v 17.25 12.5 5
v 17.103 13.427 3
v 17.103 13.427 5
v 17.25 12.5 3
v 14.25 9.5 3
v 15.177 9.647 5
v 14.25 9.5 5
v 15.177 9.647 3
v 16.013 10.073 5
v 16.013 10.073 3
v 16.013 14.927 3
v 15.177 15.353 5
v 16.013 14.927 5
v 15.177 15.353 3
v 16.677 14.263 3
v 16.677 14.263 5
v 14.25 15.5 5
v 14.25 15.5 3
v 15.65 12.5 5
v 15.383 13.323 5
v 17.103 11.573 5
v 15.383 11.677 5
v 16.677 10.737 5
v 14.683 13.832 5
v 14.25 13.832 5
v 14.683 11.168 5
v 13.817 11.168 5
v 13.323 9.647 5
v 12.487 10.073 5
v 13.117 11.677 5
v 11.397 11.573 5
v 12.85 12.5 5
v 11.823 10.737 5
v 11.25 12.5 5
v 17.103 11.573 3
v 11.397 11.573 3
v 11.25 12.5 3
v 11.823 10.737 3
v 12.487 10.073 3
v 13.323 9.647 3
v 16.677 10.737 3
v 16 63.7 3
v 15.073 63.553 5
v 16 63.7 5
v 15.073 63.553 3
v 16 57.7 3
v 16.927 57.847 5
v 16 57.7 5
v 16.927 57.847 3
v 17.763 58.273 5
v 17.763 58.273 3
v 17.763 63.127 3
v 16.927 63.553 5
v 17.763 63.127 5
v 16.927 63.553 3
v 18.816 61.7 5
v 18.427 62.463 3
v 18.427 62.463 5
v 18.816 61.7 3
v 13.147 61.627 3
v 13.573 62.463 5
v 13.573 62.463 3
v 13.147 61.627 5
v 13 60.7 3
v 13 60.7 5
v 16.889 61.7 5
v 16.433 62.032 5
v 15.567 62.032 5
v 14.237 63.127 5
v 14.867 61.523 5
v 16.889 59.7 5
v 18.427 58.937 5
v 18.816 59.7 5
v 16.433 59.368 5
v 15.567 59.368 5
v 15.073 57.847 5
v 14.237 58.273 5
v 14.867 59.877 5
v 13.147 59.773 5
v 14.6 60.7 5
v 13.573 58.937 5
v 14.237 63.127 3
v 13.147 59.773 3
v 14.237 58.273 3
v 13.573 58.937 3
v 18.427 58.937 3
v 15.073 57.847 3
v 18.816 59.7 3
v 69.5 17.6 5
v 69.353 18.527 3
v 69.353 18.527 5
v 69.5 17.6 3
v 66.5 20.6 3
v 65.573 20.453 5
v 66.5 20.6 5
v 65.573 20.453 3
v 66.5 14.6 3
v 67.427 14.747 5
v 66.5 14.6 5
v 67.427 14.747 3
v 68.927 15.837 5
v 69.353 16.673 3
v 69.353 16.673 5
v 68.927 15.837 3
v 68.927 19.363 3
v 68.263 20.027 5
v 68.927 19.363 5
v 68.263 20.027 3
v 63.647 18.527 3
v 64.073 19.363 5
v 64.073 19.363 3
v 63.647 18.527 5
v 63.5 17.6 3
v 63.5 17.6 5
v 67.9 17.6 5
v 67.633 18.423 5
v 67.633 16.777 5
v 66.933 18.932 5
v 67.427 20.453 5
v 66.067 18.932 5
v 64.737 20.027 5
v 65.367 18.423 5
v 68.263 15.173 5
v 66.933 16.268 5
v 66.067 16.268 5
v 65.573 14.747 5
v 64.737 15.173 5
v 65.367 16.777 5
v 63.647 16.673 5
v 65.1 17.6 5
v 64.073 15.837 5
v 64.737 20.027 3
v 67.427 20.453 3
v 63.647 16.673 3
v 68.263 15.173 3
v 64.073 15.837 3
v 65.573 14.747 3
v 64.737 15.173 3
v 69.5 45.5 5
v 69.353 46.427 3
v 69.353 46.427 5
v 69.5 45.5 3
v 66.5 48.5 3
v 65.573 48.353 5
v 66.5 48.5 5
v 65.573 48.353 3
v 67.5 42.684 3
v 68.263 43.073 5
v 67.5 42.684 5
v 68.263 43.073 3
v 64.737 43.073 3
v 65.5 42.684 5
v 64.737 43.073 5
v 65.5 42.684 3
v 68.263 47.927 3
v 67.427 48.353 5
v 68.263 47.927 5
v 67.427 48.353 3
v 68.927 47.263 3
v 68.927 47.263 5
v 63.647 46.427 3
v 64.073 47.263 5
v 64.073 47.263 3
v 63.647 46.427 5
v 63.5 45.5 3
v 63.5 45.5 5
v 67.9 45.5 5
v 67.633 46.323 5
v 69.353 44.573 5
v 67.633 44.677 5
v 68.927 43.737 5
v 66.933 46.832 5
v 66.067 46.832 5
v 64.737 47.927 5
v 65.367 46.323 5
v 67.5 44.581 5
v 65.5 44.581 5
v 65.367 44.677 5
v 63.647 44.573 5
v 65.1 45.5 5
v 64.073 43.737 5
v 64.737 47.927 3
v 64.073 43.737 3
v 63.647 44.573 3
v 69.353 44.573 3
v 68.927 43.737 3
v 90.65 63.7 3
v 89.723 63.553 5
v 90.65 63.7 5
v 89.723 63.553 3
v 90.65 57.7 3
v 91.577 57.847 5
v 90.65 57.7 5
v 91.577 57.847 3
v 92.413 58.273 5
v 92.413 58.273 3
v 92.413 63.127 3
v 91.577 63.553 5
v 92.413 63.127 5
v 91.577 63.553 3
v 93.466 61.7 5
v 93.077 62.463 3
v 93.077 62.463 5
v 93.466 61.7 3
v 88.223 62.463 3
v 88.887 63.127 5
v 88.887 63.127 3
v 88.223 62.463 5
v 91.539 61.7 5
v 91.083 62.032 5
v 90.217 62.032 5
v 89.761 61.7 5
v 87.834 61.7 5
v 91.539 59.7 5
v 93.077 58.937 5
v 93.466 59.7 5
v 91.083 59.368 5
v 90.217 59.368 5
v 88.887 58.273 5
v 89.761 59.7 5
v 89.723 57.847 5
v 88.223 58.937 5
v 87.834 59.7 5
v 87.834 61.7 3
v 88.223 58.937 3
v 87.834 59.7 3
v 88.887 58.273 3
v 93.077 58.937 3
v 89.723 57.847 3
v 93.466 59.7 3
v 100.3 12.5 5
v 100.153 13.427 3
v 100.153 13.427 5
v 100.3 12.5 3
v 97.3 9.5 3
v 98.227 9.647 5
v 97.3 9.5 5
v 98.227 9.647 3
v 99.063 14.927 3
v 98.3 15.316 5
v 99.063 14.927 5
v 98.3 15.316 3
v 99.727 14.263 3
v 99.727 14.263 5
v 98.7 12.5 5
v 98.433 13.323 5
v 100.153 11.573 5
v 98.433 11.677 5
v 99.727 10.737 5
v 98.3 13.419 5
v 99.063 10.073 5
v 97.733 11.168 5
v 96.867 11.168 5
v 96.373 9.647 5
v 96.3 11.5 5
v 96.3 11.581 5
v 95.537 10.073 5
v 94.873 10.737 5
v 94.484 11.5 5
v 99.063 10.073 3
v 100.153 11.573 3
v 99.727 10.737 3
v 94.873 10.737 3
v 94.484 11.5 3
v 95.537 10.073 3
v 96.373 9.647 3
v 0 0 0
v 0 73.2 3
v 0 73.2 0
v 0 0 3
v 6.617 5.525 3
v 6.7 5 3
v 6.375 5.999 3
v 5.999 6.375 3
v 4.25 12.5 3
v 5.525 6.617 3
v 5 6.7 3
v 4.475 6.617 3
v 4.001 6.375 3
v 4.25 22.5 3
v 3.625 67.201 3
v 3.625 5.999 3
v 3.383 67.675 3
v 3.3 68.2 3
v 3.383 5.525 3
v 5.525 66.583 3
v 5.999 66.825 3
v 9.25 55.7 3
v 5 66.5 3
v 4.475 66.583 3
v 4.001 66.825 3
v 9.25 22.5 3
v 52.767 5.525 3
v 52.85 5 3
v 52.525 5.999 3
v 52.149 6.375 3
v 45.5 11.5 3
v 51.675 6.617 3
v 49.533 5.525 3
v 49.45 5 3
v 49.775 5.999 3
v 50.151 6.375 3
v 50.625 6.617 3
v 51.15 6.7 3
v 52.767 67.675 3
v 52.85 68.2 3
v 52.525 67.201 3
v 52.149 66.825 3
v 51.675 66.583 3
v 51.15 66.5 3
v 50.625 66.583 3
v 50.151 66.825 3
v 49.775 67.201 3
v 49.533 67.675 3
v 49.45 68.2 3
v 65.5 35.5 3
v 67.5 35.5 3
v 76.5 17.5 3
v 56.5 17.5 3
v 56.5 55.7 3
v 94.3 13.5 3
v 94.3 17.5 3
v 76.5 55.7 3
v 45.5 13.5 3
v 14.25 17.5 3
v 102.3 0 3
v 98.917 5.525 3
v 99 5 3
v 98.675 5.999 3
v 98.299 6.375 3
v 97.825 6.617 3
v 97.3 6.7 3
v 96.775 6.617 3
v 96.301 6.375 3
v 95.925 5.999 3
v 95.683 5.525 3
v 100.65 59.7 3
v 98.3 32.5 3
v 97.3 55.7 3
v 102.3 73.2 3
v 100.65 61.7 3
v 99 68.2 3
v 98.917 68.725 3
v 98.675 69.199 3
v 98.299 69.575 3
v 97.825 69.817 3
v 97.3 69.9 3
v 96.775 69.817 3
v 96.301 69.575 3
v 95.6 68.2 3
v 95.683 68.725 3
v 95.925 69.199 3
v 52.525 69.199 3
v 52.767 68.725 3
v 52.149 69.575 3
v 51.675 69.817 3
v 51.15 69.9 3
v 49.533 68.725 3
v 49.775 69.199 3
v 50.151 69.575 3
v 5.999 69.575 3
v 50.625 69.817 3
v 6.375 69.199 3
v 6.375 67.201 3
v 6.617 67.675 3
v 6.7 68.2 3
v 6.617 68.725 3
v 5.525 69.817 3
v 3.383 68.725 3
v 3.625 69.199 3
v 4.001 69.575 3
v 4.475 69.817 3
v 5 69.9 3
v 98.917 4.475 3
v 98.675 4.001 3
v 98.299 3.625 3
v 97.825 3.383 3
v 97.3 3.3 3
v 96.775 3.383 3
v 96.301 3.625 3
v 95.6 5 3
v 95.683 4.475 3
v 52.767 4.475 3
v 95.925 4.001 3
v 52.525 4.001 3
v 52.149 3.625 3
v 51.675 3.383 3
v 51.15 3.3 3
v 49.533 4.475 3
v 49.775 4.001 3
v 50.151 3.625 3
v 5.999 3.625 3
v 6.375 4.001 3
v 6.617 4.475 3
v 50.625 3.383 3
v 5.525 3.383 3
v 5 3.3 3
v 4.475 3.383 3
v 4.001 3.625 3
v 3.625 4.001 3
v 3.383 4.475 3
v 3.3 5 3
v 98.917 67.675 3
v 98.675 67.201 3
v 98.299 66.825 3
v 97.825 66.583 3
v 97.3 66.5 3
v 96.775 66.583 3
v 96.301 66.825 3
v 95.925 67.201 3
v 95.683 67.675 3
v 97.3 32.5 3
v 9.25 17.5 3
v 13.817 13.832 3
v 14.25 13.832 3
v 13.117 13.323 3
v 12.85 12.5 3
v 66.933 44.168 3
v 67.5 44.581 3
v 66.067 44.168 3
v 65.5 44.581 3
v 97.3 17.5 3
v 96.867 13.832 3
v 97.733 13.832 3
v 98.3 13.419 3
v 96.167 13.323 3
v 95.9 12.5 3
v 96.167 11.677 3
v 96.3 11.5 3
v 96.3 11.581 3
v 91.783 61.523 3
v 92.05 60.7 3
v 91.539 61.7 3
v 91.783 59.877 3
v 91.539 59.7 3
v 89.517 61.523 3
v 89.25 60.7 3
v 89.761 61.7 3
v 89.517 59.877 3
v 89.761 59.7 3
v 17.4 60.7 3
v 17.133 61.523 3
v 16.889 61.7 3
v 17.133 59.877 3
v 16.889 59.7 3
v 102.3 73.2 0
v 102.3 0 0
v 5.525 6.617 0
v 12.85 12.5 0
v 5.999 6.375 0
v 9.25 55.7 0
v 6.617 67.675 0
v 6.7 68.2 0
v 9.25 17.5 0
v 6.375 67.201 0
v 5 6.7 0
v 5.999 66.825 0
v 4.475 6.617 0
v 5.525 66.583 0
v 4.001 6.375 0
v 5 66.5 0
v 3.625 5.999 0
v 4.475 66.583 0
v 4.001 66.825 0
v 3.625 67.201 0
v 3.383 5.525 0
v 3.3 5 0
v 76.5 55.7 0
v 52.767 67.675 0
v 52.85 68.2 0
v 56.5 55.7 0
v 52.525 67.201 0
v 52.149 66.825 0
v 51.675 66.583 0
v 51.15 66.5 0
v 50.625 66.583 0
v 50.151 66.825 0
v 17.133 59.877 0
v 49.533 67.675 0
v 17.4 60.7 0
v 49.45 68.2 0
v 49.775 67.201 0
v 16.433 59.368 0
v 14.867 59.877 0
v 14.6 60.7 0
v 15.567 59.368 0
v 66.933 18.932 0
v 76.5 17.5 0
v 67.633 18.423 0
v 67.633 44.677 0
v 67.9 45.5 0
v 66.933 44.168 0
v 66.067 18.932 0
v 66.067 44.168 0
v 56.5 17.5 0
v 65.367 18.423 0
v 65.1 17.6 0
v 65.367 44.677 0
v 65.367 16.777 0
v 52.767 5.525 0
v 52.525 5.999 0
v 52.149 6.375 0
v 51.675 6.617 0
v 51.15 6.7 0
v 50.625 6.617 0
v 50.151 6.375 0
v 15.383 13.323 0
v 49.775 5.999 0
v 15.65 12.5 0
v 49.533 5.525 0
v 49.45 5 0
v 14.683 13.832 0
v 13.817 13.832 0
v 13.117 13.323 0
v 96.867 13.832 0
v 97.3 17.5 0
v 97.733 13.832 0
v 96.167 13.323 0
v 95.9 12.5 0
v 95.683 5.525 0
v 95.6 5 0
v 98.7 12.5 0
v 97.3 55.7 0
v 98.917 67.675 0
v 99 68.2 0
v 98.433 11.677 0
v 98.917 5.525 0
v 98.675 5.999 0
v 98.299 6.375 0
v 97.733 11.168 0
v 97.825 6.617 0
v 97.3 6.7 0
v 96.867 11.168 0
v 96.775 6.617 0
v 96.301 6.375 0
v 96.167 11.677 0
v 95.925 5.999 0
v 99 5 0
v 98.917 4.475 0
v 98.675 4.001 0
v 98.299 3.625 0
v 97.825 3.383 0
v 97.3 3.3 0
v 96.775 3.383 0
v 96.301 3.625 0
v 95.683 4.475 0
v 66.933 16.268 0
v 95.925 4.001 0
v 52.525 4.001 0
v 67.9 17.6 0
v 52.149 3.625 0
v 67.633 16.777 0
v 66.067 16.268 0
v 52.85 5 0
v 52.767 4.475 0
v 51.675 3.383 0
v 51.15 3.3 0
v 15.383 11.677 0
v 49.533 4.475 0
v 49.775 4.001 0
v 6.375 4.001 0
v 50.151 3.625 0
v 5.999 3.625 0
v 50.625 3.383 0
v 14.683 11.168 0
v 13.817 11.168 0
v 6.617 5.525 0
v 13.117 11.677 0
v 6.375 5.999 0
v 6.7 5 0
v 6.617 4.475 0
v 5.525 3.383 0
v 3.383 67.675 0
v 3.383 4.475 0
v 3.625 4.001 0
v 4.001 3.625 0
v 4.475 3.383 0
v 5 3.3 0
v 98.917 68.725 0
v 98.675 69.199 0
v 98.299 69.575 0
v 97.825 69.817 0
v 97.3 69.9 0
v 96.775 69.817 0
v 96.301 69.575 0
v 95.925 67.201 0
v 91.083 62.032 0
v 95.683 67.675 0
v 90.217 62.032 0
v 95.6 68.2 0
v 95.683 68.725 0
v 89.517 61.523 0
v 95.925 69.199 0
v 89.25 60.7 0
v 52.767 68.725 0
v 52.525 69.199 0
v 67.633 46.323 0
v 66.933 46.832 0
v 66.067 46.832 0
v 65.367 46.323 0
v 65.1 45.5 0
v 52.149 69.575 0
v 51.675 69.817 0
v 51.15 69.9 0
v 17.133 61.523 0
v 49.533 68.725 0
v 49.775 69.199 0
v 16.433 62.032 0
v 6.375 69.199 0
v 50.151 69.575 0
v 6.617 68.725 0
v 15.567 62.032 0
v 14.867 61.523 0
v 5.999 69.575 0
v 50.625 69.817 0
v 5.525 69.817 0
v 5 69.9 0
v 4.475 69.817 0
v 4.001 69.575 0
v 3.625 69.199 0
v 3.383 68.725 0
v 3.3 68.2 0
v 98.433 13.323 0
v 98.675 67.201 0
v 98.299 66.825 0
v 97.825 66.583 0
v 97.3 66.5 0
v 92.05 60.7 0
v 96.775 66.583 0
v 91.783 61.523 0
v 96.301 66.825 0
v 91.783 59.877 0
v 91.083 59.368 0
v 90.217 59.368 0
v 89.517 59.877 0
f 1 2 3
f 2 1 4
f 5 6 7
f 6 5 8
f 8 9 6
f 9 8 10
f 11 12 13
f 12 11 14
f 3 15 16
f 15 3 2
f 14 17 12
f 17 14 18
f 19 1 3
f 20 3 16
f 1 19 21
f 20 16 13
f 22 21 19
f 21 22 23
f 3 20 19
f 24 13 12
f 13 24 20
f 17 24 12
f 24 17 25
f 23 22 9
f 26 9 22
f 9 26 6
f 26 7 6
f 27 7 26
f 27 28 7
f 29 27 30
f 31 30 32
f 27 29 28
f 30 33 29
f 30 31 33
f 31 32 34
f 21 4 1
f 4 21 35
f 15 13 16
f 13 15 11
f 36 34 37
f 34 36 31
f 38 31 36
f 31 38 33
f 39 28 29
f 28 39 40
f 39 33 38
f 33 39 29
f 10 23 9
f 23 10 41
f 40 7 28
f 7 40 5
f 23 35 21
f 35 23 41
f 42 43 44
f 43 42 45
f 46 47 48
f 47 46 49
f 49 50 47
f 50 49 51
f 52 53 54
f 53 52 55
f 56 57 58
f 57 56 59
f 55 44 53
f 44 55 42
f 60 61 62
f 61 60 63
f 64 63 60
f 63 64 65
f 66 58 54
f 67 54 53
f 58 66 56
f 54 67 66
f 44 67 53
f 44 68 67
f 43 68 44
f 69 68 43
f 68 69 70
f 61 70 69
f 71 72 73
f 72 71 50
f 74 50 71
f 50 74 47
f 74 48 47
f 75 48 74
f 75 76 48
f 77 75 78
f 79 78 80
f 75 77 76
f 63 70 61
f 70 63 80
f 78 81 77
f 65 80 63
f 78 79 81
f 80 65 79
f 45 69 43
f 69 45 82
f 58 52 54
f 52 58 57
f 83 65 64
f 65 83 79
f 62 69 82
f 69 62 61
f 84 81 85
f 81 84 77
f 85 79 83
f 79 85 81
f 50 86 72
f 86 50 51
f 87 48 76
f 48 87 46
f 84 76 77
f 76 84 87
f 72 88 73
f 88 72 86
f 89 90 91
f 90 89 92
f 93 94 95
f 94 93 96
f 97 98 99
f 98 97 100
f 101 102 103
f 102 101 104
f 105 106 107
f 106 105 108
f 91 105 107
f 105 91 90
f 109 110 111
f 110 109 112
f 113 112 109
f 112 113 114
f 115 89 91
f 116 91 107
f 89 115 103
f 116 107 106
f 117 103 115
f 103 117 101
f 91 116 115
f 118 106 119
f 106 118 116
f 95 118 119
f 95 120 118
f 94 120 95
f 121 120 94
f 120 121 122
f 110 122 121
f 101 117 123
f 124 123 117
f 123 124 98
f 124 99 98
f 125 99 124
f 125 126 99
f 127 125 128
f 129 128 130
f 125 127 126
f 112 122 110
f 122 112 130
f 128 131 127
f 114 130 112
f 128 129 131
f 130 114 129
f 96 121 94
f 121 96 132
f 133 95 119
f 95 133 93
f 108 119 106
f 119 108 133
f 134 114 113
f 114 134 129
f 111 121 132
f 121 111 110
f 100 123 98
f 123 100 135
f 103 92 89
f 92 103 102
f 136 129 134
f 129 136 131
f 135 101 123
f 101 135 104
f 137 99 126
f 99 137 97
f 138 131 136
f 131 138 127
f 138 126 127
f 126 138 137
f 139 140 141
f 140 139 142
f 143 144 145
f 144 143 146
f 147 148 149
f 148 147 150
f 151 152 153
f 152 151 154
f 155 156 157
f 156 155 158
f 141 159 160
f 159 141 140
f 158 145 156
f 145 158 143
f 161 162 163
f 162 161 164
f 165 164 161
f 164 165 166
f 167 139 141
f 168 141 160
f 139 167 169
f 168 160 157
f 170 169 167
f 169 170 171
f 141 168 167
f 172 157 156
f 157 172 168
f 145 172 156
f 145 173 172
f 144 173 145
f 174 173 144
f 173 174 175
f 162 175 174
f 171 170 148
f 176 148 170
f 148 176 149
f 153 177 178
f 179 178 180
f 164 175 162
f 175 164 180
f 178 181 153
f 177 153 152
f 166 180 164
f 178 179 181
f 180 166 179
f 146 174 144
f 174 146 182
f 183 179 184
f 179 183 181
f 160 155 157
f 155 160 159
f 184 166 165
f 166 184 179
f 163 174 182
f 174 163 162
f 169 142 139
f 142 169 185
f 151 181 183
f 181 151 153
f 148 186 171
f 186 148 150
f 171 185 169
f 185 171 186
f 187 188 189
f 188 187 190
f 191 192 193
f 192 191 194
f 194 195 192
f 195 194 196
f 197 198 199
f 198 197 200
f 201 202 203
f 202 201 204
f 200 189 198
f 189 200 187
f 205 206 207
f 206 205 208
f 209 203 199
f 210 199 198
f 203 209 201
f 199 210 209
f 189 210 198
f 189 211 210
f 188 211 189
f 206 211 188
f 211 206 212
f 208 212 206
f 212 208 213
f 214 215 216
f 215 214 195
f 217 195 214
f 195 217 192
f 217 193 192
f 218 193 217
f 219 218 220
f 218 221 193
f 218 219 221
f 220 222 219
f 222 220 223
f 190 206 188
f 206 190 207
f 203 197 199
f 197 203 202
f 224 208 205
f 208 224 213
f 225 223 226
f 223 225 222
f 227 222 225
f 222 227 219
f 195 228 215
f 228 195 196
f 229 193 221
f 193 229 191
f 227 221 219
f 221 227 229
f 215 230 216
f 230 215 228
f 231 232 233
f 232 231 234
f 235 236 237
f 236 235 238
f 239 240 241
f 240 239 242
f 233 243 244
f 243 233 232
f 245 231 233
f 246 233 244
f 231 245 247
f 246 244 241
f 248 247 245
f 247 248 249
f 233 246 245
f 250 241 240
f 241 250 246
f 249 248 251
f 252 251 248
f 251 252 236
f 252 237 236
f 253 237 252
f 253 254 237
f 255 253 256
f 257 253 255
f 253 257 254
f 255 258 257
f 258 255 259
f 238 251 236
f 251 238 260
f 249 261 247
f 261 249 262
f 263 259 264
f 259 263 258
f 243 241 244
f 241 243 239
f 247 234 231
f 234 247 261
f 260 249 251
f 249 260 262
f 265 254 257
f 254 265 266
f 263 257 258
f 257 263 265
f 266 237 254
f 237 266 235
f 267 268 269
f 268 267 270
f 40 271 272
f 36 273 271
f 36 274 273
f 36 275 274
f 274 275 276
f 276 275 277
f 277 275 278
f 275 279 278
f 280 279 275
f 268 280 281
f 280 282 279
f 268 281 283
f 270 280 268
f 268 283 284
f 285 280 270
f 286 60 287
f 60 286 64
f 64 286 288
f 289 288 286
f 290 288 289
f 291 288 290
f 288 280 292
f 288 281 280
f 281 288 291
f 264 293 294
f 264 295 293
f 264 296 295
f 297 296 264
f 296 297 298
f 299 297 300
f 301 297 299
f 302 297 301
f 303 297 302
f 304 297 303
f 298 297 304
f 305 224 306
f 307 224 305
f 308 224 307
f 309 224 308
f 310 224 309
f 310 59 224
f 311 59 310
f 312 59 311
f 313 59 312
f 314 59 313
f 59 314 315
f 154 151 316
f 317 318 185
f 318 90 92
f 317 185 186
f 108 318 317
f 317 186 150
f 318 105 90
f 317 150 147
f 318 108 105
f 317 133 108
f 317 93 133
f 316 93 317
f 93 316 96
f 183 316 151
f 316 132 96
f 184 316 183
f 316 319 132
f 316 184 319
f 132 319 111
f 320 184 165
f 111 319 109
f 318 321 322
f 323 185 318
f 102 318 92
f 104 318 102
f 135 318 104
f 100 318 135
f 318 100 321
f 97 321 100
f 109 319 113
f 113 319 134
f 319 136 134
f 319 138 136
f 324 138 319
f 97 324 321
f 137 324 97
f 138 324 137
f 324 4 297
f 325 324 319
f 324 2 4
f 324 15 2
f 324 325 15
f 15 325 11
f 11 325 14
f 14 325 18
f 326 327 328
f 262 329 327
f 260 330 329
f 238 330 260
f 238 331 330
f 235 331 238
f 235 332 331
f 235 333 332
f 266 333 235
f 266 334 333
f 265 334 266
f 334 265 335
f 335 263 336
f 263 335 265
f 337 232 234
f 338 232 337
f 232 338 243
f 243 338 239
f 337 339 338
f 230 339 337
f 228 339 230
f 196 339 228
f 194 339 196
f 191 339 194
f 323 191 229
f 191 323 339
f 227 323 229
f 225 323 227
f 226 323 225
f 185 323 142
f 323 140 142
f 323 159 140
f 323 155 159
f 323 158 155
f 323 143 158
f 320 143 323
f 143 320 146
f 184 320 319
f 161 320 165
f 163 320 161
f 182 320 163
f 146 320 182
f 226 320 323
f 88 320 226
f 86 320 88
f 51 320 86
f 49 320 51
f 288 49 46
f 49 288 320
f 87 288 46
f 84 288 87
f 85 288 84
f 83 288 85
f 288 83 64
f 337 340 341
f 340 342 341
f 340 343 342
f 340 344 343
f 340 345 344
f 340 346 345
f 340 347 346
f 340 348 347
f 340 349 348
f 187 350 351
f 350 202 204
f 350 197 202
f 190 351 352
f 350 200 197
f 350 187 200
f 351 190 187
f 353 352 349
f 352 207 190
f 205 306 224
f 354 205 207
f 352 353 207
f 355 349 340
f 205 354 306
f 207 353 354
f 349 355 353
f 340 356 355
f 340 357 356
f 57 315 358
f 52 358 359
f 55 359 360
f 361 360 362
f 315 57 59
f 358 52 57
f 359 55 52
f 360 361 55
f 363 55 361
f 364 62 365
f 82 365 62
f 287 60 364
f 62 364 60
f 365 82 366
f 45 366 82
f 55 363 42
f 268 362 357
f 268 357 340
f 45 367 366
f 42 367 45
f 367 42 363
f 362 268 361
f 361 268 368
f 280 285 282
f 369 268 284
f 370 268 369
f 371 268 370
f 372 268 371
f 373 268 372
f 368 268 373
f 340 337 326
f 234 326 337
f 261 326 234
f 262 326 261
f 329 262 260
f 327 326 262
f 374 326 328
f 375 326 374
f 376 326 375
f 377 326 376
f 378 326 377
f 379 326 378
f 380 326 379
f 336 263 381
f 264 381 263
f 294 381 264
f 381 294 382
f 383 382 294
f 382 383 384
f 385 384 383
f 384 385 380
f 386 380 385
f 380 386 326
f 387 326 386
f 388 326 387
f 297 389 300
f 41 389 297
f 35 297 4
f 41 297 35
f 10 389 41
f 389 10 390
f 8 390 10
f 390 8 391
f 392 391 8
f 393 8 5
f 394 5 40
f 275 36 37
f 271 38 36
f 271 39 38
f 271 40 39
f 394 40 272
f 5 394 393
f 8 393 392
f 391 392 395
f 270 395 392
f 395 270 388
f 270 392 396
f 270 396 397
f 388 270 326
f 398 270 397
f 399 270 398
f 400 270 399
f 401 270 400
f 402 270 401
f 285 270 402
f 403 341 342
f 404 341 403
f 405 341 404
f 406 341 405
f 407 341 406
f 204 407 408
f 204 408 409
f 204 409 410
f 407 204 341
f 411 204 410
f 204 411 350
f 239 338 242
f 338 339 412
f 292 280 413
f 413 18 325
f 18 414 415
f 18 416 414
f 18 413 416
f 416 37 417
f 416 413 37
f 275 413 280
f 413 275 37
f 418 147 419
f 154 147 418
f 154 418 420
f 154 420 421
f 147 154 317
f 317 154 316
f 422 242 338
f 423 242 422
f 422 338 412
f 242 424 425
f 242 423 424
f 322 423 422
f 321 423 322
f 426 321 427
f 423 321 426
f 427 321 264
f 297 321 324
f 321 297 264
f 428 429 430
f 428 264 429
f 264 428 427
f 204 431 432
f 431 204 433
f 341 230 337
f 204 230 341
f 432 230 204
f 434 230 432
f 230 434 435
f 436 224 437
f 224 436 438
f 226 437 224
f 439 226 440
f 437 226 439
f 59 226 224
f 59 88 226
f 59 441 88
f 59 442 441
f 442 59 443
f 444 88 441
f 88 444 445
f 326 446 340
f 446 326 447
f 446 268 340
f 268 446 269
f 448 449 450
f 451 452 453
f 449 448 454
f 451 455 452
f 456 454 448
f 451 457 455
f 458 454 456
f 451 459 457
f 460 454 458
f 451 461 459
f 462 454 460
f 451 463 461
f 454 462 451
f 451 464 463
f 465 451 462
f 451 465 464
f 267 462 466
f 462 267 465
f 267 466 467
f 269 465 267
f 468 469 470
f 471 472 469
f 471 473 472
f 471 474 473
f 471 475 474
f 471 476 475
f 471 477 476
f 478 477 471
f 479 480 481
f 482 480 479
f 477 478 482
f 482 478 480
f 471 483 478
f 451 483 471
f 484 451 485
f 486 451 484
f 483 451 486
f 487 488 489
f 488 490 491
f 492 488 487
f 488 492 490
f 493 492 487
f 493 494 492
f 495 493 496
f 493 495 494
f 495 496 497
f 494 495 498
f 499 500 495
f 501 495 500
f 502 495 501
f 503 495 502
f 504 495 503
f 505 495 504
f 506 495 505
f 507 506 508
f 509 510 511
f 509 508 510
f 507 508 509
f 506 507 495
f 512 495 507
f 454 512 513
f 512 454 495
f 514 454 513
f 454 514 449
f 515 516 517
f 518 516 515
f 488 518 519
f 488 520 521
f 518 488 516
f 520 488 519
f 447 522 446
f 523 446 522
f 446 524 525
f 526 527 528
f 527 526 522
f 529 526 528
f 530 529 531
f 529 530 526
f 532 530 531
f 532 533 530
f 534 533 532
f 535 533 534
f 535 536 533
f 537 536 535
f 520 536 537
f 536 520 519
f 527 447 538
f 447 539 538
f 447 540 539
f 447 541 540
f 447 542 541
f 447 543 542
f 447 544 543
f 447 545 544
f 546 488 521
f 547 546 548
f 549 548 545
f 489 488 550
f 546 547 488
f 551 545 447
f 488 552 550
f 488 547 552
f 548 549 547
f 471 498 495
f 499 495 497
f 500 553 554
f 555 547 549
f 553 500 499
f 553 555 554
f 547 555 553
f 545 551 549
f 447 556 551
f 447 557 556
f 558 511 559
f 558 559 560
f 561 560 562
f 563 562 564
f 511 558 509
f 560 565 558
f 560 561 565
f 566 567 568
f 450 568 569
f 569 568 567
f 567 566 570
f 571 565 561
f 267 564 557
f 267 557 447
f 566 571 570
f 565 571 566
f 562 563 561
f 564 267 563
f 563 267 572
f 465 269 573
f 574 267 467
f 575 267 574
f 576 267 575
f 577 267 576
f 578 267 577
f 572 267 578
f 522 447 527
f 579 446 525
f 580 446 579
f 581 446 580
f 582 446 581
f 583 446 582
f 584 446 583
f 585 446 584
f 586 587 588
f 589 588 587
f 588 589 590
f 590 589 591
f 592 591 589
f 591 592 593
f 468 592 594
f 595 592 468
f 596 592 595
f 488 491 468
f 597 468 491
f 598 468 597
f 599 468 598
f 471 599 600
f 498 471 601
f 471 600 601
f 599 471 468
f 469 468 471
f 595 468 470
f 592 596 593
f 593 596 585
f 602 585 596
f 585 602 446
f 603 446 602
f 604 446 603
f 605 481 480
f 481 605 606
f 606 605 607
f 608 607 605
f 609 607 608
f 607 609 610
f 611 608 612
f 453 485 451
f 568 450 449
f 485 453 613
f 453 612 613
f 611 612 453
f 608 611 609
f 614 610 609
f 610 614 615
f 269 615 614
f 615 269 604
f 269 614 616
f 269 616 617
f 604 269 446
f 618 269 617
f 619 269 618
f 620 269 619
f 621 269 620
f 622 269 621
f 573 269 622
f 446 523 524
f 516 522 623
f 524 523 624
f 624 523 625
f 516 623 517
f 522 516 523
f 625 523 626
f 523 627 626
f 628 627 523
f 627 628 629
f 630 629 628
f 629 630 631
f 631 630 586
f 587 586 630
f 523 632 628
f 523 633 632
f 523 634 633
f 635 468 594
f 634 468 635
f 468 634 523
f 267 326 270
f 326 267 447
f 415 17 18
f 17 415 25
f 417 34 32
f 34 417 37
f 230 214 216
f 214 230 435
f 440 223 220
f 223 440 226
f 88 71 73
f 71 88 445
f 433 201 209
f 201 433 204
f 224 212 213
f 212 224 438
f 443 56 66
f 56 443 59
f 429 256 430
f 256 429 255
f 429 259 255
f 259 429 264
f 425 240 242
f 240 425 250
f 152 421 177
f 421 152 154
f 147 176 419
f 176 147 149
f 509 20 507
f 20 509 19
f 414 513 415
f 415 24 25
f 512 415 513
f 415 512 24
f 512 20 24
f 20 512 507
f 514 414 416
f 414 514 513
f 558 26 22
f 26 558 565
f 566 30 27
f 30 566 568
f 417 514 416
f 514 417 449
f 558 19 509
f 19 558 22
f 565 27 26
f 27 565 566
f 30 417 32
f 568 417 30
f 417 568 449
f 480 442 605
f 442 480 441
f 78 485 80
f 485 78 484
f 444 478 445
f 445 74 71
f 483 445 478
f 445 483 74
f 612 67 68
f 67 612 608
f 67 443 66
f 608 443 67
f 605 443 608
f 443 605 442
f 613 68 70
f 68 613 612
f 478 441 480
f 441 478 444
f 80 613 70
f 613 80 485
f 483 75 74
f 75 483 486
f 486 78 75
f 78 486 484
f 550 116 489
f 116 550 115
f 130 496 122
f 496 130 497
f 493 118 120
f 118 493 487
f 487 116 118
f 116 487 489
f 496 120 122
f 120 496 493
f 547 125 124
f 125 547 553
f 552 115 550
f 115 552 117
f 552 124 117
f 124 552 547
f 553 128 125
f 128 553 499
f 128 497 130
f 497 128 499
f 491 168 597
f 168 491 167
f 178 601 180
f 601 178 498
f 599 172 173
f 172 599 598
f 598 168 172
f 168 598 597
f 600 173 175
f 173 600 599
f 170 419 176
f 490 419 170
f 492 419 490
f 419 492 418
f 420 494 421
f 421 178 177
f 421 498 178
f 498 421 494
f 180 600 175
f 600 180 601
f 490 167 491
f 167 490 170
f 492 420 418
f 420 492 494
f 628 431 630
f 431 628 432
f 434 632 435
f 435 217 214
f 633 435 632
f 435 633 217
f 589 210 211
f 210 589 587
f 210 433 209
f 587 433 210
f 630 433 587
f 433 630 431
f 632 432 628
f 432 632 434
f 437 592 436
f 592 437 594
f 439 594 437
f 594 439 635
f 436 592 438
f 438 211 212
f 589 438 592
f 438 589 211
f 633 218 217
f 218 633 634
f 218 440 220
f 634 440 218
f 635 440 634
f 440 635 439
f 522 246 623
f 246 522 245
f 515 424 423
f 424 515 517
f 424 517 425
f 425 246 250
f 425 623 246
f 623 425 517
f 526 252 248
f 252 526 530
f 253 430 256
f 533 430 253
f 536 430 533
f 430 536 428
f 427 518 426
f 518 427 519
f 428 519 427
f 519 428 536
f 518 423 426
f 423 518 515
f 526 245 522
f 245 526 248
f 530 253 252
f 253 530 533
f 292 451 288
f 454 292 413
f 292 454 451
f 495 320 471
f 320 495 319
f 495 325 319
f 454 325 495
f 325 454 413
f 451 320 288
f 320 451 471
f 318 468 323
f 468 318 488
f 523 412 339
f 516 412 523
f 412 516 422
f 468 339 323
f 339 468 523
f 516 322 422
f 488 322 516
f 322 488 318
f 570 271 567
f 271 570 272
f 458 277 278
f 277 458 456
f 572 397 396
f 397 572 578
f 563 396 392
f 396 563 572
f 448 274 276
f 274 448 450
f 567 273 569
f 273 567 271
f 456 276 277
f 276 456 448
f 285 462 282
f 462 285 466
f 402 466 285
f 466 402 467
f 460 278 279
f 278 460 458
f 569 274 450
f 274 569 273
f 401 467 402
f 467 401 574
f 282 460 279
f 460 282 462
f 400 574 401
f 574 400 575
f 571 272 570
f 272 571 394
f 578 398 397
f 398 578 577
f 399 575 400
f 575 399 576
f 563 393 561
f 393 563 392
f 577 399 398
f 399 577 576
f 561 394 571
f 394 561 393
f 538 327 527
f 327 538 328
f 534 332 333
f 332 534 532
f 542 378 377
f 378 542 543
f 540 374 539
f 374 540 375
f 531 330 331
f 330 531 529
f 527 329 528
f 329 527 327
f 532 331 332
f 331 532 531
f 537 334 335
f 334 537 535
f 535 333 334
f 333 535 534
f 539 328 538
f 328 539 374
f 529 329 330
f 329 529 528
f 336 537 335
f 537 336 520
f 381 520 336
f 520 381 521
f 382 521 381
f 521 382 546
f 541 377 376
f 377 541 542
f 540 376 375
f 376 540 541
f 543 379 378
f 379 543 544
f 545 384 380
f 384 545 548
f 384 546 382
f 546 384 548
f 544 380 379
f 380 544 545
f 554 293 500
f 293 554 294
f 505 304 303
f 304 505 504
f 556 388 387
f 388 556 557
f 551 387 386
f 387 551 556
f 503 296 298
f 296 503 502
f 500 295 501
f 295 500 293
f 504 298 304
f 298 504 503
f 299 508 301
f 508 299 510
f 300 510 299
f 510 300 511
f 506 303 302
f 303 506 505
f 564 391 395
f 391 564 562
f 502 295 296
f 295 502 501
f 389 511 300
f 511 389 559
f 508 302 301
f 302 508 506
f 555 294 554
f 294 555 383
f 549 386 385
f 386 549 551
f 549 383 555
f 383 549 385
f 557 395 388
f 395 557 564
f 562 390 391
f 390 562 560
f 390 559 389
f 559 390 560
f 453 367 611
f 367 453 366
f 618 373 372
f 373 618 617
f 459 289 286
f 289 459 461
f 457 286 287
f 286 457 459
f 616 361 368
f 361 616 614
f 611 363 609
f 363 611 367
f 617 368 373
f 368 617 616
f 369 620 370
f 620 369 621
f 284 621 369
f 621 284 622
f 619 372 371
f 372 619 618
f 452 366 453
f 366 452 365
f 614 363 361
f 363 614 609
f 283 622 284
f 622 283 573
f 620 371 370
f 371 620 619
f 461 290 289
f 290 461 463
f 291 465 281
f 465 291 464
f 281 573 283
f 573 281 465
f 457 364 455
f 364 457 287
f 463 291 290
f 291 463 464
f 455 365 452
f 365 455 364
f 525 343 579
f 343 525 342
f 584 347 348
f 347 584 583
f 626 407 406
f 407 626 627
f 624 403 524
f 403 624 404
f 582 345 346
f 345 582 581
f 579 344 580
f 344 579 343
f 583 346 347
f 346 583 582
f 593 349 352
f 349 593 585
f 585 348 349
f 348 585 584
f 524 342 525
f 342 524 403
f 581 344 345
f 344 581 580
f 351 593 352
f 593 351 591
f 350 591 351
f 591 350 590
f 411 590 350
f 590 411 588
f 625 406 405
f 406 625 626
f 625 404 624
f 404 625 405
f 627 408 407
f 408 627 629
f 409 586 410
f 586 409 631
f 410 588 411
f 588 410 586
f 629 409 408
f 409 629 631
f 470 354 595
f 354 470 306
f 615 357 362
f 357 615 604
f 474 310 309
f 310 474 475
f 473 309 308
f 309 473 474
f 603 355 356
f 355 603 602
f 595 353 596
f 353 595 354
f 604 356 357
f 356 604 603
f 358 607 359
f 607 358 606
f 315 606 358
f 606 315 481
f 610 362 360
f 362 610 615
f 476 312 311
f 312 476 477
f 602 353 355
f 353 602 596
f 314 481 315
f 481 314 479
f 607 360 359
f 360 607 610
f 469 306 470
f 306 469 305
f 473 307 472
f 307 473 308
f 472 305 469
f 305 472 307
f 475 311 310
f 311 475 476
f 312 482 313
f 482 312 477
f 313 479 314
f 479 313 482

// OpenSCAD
// Dimensions
totalWidth = 190.5; // 7.5"
totalLength = 190.5;
inch = 25.4;
halfInch = inch / 2;
quarterInch = inch / 4; // .25"
floorDepth = 3;   // Real = .25 inches
edgeWidth = quarterInch;
bossHeight = 3;
cavityDepth = 0.1 * inch;       // Real = 2 inches
boltRadius = 1.4;
dividerHeight = 56;
dividerDepth = inch;
bossRadius = 3;

arduinoHeight = floorDepth + (bossHeight / 2) - 1;

    lowerLeftX = 14.25;
    upperLeftX = 16;
    upperRightX = 14.05 + 52.5 + 24.1;
    lowerRightX = 12.00 + 85.3;
    upperY = 2.5 + 5.1 + 27.9 + 15.2;
    lowerY = 2.5;
    unoX = 14 + 52.5;

// Boss
module boss(x, y, solid)
{
    translate ([x, y, 0])
    {
        if (solid > 0)
        {
            cylinder(h = bossHeight, r = bossRadius, center = true, $fn = 20);
        }
        else
        {
            cylinder(h = bossHeight + 30, r = boltRadius, center = true, $fn = 10);
        }
    }
}

module arduinoDue(solid)
{   
    translate([0, 0, (bossHeight / 2) - 1])
    {
        boss (lowerLeftX,          lowerY,                    solid); // lower left
        boss (16,                  upperY,                    solid); // upper left
        boss (unoX,                lowerY + 5.1,              solid); // lower Uno hole
        boss (unoX,                lowerY + 5.1 + 27.9,       solid); // upper Uno hole
        boss (upperRightX,         upperY,                    solid); // upper right
        boss (lowerRightX,         lowerY,                    solid); // lower right
        
        if (solid == 0)
        {
            // Lower left
            translate([lowerLeftX - 10, lowerY , (bossHeight / 2) - 2])
            {
                cube ([10, 10, 3]);
            }
            
            // Top two
            translate([upperLeftX, upperY - 1, (bossHeight / 2) - 2])
            {
                cube ([upperRightX - upperLeftX + 10, 2, 3]);
            }
            
            // Bottom right two
            translate([lowerRightX - (inch * 2) - 1, lowerY - 1, (bossHeight / 2) - 2])
            {
                cube ([inch * 2, 2, 3]);
            }  
  
            translate([lowerRightX - 1, lowerY, (bossHeight / 2) - 2])
            {
                cube ([2, 20, 3]);
            }  

            translate([lowerRightX - 3, lowerY, (bossHeight / 2) - 2])
            {
                cube ([2, 20, 3]);
            }  

            // Upper Uno hole
            translate([unoX - 1, lowerY + 23, (bossHeight / 2) - 2])
            {
                cube ([2, 10, 3]);
            }  
        }
    }
}

buffer = 5;
xOffset = 0;
yOffset = lowerY + (buffer * 1.5);
platformHeight = upperY - lowerY + (5 * buffer);
mountingHoleWidth = lowerRightX;
mountingHoleHeight = platformHeight - (2 * buffer);
echo("mountingHoleWidth = ", mountingHoleWidth);
echo("mountingHoleHeight = ", mountingHoleHeight);

module mountingHoles()
{
    translate([buffer, buffer, 0])
    {
        cylinder(r = boltRadius + .3, h = 20, center = true, $fn = 20);
    }
    
    translate([mountingHoleWidth, buffer, 0])
    {
        cylinder(r = boltRadius + .3, h = 20, center = true, $fn = 20);
    }

    translate([(mountingHoleWidth + buffer) / 2, buffer, 0])
    {
        cylinder(r = boltRadius + .3, h = 20, center = true, $fn = 20);
    }
}

difference()
{
    union()
    {
        cube([lowerRightX + buffer, platformHeight, floorDepth], false);

        // Arduino positive
        translate([xOffset, yOffset, floorDepth])
        {
            arduinoDue(1);
        }
    }

    // Arduino negative
    translate([xOffset, yOffset, floorDepth])
    {
        arduinoDue(0);
                
        translate ([lowerLeftX - buffer, lowerY + buffer, -10])
        {
            cube ([unoX - lowerLeftX - buffer, upperY - lowerY - (2 * buffer), inch], false);
        }
            
        translate ([unoX + (2 * buffer), lowerY + buffer, -10])
        {
            cube ([lowerRightX - unoX - (2 * buffer), upperY - lowerY - (2 * buffer), inch], false);
        }
        
    }

        mountingHoles();
        
        translate([0, mountingHoleHeight, 0])
        {
            mountingHoles();
        }

}
